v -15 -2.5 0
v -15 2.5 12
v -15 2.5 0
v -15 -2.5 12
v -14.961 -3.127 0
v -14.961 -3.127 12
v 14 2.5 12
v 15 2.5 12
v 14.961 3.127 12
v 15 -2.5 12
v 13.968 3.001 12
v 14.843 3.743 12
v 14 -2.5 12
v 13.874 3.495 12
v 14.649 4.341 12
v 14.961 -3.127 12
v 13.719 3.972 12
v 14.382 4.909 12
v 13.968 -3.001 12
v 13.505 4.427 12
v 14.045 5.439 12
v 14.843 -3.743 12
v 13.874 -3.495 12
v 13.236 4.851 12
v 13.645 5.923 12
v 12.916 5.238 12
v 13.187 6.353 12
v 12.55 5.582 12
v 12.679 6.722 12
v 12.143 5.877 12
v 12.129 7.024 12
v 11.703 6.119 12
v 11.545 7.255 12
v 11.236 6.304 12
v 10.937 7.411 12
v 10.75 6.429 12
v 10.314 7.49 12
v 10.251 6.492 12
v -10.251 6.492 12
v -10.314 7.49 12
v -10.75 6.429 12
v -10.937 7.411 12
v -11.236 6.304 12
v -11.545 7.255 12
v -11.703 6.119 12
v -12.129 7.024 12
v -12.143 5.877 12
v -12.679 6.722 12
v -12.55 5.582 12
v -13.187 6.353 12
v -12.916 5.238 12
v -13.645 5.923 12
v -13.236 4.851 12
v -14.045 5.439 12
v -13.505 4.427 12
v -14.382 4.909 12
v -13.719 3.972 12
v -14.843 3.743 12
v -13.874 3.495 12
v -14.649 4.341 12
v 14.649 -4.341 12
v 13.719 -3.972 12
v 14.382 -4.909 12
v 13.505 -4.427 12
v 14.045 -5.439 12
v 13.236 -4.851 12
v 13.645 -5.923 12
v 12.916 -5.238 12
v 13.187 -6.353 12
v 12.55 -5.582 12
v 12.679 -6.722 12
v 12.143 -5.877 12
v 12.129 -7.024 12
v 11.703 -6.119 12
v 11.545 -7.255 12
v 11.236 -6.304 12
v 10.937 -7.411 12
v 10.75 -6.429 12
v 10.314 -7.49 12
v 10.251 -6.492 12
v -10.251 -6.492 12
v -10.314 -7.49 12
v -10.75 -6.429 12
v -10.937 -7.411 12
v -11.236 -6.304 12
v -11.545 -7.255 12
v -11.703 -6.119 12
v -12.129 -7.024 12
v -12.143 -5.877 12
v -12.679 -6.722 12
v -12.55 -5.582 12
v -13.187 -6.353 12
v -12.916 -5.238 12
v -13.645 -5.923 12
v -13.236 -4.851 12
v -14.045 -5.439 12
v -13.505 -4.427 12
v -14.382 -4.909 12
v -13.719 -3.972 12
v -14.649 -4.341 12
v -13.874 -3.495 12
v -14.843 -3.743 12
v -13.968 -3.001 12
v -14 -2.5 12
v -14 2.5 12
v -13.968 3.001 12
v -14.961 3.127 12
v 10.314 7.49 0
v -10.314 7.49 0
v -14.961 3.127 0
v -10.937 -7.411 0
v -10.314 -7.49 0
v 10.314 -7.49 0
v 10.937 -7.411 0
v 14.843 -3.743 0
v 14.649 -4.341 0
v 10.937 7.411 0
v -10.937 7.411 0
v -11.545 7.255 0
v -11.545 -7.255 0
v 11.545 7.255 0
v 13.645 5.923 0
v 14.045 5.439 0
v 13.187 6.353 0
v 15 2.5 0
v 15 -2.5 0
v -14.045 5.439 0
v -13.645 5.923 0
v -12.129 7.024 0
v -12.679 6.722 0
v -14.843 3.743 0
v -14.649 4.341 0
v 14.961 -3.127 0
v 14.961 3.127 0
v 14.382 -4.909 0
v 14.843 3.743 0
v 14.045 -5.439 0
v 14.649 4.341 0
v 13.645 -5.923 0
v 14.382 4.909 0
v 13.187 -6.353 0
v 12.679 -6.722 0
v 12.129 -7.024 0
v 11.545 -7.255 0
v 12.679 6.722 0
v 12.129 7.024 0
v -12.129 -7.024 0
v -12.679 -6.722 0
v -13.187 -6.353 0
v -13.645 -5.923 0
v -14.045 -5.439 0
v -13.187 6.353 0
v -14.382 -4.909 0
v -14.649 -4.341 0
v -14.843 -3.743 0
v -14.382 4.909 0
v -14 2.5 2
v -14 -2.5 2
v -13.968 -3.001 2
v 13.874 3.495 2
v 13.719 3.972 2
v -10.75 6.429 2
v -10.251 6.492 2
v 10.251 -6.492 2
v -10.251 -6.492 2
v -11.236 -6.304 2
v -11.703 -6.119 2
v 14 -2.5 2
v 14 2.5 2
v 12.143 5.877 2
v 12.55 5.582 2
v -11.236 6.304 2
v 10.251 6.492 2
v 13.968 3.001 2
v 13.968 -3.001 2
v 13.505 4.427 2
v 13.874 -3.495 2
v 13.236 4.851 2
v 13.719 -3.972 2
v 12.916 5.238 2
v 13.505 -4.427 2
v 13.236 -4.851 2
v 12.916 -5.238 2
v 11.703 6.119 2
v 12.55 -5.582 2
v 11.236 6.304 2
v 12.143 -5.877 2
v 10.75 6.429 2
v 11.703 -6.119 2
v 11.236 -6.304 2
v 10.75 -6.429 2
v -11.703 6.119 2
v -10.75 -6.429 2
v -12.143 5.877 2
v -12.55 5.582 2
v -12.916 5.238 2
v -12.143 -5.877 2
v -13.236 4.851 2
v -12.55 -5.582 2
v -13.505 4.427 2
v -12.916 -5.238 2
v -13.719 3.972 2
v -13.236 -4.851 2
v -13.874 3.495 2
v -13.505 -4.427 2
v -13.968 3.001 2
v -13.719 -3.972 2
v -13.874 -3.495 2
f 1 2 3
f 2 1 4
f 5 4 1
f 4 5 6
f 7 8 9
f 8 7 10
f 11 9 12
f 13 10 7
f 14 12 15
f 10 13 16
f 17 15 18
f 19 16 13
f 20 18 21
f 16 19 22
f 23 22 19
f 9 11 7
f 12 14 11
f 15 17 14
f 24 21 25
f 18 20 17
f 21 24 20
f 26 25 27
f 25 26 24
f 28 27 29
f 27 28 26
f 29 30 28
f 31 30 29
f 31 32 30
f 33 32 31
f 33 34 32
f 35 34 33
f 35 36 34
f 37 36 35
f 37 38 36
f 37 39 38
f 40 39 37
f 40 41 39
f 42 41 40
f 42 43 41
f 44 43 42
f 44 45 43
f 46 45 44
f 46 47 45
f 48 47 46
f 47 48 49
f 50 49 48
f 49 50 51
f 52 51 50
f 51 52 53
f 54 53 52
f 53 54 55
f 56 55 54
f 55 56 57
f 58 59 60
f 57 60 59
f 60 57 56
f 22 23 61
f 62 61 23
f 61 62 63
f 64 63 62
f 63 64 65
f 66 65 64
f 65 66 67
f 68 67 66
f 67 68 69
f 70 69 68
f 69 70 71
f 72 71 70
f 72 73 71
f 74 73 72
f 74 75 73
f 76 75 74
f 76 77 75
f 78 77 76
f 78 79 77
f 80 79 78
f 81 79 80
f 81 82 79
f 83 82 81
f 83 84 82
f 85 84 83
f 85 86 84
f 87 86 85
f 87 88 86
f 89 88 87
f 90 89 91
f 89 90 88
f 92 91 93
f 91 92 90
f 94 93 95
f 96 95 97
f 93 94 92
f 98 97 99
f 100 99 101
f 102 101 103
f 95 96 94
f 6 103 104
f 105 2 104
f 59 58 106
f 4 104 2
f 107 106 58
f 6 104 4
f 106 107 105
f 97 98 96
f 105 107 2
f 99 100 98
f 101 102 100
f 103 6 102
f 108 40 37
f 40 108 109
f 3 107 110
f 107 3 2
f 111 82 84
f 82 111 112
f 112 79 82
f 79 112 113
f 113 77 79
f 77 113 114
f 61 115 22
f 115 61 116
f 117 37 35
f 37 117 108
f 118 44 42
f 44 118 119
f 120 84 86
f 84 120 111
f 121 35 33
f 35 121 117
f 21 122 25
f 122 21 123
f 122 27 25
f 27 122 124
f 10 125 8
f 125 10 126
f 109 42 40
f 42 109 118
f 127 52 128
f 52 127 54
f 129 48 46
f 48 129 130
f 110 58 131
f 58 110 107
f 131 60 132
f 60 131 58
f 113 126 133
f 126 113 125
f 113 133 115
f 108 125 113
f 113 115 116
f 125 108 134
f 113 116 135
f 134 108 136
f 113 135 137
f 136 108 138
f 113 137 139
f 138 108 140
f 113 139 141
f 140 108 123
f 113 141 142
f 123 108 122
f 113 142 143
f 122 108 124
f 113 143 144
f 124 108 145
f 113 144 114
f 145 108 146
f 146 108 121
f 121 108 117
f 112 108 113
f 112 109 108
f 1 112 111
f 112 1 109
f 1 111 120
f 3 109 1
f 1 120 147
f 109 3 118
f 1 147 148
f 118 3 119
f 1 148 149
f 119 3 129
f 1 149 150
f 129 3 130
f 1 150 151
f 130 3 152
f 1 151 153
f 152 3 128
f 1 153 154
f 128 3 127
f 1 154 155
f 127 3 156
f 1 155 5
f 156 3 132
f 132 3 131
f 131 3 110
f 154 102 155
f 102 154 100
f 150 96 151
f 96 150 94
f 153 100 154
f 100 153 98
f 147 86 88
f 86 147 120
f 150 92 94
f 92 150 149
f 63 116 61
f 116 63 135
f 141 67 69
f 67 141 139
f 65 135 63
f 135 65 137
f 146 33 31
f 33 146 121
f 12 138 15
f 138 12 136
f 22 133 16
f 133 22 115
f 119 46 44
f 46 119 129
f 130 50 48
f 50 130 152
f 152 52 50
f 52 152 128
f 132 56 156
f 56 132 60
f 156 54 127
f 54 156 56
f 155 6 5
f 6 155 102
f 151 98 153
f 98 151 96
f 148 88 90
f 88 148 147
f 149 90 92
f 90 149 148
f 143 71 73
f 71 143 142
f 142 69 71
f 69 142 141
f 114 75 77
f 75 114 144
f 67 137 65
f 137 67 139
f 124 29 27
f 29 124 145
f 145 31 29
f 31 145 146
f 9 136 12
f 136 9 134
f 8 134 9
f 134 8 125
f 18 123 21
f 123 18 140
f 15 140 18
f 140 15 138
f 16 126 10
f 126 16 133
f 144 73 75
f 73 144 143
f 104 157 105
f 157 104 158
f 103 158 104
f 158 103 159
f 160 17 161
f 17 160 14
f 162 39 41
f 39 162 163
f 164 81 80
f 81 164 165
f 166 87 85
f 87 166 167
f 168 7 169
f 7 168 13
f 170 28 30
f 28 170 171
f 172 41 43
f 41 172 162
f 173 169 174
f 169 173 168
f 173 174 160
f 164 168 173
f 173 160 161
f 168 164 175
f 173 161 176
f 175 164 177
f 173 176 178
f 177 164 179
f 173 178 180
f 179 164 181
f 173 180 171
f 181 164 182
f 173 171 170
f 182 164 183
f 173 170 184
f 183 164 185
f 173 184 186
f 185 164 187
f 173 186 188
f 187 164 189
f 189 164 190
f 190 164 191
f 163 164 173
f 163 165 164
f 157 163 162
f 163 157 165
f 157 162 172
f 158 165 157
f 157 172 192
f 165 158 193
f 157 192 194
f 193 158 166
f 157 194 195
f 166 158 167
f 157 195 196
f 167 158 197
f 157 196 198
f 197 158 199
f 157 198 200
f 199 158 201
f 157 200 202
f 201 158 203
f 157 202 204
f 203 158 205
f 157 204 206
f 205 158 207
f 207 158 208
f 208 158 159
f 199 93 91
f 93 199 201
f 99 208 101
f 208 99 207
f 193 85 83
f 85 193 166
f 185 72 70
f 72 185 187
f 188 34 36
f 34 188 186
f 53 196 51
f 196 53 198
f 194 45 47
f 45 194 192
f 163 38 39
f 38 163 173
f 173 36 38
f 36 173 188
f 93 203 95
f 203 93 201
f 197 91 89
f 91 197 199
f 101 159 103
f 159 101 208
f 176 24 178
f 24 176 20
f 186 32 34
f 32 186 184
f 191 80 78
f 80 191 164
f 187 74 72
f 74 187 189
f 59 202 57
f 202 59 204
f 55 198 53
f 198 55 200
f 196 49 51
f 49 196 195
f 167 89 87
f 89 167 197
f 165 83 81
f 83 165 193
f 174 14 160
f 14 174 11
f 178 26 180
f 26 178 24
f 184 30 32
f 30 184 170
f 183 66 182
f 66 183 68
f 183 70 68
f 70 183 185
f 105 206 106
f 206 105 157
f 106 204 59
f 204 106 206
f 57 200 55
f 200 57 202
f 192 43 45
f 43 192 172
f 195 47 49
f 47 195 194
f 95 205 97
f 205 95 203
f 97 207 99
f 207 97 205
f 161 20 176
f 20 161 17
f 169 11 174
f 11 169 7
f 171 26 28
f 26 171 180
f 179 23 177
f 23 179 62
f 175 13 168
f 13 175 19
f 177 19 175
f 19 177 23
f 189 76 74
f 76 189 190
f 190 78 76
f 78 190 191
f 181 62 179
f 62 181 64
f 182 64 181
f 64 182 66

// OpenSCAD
$fn = 50;


difference() {
	union() {
		hull() {
			translate(v = [-10.0000000000, 2.5000000000, 0]) {
				cylinder(h = 12, r = 5);
			}
			translate(v = [10.0000000000, 2.5000000000, 0]) {
				cylinder(h = 12, r = 5);
			}
			translate(v = [-10.0000000000, -2.5000000000, 0]) {
				cylinder(h = 12, r = 5);
			}
			translate(v = [10.0000000000, -2.5000000000, 0]) {
				cylinder(h = 12, r = 5);
			}
		}
	}
	union() {
		translate(v = [0, 0, 2]) {
			hull() {
				translate(v = [-10.0000000000, 2.5000000000, 0]) {
					cylinder(h = 10, r = 4);
				}
				translate(v = [10.0000000000, 2.5000000000, 0]) {
					cylinder(h = 10, r = 4);
				}
				translate(v = [-10.0000000000, -2.5000000000, 0]) {
					cylinder(h = 10, r = 4);
				}
				translate(v = [10.0000000000, -2.5000000000, 0]) {
					cylinder(h = 10, r = 4);
				}
			}
		}
	}
}
